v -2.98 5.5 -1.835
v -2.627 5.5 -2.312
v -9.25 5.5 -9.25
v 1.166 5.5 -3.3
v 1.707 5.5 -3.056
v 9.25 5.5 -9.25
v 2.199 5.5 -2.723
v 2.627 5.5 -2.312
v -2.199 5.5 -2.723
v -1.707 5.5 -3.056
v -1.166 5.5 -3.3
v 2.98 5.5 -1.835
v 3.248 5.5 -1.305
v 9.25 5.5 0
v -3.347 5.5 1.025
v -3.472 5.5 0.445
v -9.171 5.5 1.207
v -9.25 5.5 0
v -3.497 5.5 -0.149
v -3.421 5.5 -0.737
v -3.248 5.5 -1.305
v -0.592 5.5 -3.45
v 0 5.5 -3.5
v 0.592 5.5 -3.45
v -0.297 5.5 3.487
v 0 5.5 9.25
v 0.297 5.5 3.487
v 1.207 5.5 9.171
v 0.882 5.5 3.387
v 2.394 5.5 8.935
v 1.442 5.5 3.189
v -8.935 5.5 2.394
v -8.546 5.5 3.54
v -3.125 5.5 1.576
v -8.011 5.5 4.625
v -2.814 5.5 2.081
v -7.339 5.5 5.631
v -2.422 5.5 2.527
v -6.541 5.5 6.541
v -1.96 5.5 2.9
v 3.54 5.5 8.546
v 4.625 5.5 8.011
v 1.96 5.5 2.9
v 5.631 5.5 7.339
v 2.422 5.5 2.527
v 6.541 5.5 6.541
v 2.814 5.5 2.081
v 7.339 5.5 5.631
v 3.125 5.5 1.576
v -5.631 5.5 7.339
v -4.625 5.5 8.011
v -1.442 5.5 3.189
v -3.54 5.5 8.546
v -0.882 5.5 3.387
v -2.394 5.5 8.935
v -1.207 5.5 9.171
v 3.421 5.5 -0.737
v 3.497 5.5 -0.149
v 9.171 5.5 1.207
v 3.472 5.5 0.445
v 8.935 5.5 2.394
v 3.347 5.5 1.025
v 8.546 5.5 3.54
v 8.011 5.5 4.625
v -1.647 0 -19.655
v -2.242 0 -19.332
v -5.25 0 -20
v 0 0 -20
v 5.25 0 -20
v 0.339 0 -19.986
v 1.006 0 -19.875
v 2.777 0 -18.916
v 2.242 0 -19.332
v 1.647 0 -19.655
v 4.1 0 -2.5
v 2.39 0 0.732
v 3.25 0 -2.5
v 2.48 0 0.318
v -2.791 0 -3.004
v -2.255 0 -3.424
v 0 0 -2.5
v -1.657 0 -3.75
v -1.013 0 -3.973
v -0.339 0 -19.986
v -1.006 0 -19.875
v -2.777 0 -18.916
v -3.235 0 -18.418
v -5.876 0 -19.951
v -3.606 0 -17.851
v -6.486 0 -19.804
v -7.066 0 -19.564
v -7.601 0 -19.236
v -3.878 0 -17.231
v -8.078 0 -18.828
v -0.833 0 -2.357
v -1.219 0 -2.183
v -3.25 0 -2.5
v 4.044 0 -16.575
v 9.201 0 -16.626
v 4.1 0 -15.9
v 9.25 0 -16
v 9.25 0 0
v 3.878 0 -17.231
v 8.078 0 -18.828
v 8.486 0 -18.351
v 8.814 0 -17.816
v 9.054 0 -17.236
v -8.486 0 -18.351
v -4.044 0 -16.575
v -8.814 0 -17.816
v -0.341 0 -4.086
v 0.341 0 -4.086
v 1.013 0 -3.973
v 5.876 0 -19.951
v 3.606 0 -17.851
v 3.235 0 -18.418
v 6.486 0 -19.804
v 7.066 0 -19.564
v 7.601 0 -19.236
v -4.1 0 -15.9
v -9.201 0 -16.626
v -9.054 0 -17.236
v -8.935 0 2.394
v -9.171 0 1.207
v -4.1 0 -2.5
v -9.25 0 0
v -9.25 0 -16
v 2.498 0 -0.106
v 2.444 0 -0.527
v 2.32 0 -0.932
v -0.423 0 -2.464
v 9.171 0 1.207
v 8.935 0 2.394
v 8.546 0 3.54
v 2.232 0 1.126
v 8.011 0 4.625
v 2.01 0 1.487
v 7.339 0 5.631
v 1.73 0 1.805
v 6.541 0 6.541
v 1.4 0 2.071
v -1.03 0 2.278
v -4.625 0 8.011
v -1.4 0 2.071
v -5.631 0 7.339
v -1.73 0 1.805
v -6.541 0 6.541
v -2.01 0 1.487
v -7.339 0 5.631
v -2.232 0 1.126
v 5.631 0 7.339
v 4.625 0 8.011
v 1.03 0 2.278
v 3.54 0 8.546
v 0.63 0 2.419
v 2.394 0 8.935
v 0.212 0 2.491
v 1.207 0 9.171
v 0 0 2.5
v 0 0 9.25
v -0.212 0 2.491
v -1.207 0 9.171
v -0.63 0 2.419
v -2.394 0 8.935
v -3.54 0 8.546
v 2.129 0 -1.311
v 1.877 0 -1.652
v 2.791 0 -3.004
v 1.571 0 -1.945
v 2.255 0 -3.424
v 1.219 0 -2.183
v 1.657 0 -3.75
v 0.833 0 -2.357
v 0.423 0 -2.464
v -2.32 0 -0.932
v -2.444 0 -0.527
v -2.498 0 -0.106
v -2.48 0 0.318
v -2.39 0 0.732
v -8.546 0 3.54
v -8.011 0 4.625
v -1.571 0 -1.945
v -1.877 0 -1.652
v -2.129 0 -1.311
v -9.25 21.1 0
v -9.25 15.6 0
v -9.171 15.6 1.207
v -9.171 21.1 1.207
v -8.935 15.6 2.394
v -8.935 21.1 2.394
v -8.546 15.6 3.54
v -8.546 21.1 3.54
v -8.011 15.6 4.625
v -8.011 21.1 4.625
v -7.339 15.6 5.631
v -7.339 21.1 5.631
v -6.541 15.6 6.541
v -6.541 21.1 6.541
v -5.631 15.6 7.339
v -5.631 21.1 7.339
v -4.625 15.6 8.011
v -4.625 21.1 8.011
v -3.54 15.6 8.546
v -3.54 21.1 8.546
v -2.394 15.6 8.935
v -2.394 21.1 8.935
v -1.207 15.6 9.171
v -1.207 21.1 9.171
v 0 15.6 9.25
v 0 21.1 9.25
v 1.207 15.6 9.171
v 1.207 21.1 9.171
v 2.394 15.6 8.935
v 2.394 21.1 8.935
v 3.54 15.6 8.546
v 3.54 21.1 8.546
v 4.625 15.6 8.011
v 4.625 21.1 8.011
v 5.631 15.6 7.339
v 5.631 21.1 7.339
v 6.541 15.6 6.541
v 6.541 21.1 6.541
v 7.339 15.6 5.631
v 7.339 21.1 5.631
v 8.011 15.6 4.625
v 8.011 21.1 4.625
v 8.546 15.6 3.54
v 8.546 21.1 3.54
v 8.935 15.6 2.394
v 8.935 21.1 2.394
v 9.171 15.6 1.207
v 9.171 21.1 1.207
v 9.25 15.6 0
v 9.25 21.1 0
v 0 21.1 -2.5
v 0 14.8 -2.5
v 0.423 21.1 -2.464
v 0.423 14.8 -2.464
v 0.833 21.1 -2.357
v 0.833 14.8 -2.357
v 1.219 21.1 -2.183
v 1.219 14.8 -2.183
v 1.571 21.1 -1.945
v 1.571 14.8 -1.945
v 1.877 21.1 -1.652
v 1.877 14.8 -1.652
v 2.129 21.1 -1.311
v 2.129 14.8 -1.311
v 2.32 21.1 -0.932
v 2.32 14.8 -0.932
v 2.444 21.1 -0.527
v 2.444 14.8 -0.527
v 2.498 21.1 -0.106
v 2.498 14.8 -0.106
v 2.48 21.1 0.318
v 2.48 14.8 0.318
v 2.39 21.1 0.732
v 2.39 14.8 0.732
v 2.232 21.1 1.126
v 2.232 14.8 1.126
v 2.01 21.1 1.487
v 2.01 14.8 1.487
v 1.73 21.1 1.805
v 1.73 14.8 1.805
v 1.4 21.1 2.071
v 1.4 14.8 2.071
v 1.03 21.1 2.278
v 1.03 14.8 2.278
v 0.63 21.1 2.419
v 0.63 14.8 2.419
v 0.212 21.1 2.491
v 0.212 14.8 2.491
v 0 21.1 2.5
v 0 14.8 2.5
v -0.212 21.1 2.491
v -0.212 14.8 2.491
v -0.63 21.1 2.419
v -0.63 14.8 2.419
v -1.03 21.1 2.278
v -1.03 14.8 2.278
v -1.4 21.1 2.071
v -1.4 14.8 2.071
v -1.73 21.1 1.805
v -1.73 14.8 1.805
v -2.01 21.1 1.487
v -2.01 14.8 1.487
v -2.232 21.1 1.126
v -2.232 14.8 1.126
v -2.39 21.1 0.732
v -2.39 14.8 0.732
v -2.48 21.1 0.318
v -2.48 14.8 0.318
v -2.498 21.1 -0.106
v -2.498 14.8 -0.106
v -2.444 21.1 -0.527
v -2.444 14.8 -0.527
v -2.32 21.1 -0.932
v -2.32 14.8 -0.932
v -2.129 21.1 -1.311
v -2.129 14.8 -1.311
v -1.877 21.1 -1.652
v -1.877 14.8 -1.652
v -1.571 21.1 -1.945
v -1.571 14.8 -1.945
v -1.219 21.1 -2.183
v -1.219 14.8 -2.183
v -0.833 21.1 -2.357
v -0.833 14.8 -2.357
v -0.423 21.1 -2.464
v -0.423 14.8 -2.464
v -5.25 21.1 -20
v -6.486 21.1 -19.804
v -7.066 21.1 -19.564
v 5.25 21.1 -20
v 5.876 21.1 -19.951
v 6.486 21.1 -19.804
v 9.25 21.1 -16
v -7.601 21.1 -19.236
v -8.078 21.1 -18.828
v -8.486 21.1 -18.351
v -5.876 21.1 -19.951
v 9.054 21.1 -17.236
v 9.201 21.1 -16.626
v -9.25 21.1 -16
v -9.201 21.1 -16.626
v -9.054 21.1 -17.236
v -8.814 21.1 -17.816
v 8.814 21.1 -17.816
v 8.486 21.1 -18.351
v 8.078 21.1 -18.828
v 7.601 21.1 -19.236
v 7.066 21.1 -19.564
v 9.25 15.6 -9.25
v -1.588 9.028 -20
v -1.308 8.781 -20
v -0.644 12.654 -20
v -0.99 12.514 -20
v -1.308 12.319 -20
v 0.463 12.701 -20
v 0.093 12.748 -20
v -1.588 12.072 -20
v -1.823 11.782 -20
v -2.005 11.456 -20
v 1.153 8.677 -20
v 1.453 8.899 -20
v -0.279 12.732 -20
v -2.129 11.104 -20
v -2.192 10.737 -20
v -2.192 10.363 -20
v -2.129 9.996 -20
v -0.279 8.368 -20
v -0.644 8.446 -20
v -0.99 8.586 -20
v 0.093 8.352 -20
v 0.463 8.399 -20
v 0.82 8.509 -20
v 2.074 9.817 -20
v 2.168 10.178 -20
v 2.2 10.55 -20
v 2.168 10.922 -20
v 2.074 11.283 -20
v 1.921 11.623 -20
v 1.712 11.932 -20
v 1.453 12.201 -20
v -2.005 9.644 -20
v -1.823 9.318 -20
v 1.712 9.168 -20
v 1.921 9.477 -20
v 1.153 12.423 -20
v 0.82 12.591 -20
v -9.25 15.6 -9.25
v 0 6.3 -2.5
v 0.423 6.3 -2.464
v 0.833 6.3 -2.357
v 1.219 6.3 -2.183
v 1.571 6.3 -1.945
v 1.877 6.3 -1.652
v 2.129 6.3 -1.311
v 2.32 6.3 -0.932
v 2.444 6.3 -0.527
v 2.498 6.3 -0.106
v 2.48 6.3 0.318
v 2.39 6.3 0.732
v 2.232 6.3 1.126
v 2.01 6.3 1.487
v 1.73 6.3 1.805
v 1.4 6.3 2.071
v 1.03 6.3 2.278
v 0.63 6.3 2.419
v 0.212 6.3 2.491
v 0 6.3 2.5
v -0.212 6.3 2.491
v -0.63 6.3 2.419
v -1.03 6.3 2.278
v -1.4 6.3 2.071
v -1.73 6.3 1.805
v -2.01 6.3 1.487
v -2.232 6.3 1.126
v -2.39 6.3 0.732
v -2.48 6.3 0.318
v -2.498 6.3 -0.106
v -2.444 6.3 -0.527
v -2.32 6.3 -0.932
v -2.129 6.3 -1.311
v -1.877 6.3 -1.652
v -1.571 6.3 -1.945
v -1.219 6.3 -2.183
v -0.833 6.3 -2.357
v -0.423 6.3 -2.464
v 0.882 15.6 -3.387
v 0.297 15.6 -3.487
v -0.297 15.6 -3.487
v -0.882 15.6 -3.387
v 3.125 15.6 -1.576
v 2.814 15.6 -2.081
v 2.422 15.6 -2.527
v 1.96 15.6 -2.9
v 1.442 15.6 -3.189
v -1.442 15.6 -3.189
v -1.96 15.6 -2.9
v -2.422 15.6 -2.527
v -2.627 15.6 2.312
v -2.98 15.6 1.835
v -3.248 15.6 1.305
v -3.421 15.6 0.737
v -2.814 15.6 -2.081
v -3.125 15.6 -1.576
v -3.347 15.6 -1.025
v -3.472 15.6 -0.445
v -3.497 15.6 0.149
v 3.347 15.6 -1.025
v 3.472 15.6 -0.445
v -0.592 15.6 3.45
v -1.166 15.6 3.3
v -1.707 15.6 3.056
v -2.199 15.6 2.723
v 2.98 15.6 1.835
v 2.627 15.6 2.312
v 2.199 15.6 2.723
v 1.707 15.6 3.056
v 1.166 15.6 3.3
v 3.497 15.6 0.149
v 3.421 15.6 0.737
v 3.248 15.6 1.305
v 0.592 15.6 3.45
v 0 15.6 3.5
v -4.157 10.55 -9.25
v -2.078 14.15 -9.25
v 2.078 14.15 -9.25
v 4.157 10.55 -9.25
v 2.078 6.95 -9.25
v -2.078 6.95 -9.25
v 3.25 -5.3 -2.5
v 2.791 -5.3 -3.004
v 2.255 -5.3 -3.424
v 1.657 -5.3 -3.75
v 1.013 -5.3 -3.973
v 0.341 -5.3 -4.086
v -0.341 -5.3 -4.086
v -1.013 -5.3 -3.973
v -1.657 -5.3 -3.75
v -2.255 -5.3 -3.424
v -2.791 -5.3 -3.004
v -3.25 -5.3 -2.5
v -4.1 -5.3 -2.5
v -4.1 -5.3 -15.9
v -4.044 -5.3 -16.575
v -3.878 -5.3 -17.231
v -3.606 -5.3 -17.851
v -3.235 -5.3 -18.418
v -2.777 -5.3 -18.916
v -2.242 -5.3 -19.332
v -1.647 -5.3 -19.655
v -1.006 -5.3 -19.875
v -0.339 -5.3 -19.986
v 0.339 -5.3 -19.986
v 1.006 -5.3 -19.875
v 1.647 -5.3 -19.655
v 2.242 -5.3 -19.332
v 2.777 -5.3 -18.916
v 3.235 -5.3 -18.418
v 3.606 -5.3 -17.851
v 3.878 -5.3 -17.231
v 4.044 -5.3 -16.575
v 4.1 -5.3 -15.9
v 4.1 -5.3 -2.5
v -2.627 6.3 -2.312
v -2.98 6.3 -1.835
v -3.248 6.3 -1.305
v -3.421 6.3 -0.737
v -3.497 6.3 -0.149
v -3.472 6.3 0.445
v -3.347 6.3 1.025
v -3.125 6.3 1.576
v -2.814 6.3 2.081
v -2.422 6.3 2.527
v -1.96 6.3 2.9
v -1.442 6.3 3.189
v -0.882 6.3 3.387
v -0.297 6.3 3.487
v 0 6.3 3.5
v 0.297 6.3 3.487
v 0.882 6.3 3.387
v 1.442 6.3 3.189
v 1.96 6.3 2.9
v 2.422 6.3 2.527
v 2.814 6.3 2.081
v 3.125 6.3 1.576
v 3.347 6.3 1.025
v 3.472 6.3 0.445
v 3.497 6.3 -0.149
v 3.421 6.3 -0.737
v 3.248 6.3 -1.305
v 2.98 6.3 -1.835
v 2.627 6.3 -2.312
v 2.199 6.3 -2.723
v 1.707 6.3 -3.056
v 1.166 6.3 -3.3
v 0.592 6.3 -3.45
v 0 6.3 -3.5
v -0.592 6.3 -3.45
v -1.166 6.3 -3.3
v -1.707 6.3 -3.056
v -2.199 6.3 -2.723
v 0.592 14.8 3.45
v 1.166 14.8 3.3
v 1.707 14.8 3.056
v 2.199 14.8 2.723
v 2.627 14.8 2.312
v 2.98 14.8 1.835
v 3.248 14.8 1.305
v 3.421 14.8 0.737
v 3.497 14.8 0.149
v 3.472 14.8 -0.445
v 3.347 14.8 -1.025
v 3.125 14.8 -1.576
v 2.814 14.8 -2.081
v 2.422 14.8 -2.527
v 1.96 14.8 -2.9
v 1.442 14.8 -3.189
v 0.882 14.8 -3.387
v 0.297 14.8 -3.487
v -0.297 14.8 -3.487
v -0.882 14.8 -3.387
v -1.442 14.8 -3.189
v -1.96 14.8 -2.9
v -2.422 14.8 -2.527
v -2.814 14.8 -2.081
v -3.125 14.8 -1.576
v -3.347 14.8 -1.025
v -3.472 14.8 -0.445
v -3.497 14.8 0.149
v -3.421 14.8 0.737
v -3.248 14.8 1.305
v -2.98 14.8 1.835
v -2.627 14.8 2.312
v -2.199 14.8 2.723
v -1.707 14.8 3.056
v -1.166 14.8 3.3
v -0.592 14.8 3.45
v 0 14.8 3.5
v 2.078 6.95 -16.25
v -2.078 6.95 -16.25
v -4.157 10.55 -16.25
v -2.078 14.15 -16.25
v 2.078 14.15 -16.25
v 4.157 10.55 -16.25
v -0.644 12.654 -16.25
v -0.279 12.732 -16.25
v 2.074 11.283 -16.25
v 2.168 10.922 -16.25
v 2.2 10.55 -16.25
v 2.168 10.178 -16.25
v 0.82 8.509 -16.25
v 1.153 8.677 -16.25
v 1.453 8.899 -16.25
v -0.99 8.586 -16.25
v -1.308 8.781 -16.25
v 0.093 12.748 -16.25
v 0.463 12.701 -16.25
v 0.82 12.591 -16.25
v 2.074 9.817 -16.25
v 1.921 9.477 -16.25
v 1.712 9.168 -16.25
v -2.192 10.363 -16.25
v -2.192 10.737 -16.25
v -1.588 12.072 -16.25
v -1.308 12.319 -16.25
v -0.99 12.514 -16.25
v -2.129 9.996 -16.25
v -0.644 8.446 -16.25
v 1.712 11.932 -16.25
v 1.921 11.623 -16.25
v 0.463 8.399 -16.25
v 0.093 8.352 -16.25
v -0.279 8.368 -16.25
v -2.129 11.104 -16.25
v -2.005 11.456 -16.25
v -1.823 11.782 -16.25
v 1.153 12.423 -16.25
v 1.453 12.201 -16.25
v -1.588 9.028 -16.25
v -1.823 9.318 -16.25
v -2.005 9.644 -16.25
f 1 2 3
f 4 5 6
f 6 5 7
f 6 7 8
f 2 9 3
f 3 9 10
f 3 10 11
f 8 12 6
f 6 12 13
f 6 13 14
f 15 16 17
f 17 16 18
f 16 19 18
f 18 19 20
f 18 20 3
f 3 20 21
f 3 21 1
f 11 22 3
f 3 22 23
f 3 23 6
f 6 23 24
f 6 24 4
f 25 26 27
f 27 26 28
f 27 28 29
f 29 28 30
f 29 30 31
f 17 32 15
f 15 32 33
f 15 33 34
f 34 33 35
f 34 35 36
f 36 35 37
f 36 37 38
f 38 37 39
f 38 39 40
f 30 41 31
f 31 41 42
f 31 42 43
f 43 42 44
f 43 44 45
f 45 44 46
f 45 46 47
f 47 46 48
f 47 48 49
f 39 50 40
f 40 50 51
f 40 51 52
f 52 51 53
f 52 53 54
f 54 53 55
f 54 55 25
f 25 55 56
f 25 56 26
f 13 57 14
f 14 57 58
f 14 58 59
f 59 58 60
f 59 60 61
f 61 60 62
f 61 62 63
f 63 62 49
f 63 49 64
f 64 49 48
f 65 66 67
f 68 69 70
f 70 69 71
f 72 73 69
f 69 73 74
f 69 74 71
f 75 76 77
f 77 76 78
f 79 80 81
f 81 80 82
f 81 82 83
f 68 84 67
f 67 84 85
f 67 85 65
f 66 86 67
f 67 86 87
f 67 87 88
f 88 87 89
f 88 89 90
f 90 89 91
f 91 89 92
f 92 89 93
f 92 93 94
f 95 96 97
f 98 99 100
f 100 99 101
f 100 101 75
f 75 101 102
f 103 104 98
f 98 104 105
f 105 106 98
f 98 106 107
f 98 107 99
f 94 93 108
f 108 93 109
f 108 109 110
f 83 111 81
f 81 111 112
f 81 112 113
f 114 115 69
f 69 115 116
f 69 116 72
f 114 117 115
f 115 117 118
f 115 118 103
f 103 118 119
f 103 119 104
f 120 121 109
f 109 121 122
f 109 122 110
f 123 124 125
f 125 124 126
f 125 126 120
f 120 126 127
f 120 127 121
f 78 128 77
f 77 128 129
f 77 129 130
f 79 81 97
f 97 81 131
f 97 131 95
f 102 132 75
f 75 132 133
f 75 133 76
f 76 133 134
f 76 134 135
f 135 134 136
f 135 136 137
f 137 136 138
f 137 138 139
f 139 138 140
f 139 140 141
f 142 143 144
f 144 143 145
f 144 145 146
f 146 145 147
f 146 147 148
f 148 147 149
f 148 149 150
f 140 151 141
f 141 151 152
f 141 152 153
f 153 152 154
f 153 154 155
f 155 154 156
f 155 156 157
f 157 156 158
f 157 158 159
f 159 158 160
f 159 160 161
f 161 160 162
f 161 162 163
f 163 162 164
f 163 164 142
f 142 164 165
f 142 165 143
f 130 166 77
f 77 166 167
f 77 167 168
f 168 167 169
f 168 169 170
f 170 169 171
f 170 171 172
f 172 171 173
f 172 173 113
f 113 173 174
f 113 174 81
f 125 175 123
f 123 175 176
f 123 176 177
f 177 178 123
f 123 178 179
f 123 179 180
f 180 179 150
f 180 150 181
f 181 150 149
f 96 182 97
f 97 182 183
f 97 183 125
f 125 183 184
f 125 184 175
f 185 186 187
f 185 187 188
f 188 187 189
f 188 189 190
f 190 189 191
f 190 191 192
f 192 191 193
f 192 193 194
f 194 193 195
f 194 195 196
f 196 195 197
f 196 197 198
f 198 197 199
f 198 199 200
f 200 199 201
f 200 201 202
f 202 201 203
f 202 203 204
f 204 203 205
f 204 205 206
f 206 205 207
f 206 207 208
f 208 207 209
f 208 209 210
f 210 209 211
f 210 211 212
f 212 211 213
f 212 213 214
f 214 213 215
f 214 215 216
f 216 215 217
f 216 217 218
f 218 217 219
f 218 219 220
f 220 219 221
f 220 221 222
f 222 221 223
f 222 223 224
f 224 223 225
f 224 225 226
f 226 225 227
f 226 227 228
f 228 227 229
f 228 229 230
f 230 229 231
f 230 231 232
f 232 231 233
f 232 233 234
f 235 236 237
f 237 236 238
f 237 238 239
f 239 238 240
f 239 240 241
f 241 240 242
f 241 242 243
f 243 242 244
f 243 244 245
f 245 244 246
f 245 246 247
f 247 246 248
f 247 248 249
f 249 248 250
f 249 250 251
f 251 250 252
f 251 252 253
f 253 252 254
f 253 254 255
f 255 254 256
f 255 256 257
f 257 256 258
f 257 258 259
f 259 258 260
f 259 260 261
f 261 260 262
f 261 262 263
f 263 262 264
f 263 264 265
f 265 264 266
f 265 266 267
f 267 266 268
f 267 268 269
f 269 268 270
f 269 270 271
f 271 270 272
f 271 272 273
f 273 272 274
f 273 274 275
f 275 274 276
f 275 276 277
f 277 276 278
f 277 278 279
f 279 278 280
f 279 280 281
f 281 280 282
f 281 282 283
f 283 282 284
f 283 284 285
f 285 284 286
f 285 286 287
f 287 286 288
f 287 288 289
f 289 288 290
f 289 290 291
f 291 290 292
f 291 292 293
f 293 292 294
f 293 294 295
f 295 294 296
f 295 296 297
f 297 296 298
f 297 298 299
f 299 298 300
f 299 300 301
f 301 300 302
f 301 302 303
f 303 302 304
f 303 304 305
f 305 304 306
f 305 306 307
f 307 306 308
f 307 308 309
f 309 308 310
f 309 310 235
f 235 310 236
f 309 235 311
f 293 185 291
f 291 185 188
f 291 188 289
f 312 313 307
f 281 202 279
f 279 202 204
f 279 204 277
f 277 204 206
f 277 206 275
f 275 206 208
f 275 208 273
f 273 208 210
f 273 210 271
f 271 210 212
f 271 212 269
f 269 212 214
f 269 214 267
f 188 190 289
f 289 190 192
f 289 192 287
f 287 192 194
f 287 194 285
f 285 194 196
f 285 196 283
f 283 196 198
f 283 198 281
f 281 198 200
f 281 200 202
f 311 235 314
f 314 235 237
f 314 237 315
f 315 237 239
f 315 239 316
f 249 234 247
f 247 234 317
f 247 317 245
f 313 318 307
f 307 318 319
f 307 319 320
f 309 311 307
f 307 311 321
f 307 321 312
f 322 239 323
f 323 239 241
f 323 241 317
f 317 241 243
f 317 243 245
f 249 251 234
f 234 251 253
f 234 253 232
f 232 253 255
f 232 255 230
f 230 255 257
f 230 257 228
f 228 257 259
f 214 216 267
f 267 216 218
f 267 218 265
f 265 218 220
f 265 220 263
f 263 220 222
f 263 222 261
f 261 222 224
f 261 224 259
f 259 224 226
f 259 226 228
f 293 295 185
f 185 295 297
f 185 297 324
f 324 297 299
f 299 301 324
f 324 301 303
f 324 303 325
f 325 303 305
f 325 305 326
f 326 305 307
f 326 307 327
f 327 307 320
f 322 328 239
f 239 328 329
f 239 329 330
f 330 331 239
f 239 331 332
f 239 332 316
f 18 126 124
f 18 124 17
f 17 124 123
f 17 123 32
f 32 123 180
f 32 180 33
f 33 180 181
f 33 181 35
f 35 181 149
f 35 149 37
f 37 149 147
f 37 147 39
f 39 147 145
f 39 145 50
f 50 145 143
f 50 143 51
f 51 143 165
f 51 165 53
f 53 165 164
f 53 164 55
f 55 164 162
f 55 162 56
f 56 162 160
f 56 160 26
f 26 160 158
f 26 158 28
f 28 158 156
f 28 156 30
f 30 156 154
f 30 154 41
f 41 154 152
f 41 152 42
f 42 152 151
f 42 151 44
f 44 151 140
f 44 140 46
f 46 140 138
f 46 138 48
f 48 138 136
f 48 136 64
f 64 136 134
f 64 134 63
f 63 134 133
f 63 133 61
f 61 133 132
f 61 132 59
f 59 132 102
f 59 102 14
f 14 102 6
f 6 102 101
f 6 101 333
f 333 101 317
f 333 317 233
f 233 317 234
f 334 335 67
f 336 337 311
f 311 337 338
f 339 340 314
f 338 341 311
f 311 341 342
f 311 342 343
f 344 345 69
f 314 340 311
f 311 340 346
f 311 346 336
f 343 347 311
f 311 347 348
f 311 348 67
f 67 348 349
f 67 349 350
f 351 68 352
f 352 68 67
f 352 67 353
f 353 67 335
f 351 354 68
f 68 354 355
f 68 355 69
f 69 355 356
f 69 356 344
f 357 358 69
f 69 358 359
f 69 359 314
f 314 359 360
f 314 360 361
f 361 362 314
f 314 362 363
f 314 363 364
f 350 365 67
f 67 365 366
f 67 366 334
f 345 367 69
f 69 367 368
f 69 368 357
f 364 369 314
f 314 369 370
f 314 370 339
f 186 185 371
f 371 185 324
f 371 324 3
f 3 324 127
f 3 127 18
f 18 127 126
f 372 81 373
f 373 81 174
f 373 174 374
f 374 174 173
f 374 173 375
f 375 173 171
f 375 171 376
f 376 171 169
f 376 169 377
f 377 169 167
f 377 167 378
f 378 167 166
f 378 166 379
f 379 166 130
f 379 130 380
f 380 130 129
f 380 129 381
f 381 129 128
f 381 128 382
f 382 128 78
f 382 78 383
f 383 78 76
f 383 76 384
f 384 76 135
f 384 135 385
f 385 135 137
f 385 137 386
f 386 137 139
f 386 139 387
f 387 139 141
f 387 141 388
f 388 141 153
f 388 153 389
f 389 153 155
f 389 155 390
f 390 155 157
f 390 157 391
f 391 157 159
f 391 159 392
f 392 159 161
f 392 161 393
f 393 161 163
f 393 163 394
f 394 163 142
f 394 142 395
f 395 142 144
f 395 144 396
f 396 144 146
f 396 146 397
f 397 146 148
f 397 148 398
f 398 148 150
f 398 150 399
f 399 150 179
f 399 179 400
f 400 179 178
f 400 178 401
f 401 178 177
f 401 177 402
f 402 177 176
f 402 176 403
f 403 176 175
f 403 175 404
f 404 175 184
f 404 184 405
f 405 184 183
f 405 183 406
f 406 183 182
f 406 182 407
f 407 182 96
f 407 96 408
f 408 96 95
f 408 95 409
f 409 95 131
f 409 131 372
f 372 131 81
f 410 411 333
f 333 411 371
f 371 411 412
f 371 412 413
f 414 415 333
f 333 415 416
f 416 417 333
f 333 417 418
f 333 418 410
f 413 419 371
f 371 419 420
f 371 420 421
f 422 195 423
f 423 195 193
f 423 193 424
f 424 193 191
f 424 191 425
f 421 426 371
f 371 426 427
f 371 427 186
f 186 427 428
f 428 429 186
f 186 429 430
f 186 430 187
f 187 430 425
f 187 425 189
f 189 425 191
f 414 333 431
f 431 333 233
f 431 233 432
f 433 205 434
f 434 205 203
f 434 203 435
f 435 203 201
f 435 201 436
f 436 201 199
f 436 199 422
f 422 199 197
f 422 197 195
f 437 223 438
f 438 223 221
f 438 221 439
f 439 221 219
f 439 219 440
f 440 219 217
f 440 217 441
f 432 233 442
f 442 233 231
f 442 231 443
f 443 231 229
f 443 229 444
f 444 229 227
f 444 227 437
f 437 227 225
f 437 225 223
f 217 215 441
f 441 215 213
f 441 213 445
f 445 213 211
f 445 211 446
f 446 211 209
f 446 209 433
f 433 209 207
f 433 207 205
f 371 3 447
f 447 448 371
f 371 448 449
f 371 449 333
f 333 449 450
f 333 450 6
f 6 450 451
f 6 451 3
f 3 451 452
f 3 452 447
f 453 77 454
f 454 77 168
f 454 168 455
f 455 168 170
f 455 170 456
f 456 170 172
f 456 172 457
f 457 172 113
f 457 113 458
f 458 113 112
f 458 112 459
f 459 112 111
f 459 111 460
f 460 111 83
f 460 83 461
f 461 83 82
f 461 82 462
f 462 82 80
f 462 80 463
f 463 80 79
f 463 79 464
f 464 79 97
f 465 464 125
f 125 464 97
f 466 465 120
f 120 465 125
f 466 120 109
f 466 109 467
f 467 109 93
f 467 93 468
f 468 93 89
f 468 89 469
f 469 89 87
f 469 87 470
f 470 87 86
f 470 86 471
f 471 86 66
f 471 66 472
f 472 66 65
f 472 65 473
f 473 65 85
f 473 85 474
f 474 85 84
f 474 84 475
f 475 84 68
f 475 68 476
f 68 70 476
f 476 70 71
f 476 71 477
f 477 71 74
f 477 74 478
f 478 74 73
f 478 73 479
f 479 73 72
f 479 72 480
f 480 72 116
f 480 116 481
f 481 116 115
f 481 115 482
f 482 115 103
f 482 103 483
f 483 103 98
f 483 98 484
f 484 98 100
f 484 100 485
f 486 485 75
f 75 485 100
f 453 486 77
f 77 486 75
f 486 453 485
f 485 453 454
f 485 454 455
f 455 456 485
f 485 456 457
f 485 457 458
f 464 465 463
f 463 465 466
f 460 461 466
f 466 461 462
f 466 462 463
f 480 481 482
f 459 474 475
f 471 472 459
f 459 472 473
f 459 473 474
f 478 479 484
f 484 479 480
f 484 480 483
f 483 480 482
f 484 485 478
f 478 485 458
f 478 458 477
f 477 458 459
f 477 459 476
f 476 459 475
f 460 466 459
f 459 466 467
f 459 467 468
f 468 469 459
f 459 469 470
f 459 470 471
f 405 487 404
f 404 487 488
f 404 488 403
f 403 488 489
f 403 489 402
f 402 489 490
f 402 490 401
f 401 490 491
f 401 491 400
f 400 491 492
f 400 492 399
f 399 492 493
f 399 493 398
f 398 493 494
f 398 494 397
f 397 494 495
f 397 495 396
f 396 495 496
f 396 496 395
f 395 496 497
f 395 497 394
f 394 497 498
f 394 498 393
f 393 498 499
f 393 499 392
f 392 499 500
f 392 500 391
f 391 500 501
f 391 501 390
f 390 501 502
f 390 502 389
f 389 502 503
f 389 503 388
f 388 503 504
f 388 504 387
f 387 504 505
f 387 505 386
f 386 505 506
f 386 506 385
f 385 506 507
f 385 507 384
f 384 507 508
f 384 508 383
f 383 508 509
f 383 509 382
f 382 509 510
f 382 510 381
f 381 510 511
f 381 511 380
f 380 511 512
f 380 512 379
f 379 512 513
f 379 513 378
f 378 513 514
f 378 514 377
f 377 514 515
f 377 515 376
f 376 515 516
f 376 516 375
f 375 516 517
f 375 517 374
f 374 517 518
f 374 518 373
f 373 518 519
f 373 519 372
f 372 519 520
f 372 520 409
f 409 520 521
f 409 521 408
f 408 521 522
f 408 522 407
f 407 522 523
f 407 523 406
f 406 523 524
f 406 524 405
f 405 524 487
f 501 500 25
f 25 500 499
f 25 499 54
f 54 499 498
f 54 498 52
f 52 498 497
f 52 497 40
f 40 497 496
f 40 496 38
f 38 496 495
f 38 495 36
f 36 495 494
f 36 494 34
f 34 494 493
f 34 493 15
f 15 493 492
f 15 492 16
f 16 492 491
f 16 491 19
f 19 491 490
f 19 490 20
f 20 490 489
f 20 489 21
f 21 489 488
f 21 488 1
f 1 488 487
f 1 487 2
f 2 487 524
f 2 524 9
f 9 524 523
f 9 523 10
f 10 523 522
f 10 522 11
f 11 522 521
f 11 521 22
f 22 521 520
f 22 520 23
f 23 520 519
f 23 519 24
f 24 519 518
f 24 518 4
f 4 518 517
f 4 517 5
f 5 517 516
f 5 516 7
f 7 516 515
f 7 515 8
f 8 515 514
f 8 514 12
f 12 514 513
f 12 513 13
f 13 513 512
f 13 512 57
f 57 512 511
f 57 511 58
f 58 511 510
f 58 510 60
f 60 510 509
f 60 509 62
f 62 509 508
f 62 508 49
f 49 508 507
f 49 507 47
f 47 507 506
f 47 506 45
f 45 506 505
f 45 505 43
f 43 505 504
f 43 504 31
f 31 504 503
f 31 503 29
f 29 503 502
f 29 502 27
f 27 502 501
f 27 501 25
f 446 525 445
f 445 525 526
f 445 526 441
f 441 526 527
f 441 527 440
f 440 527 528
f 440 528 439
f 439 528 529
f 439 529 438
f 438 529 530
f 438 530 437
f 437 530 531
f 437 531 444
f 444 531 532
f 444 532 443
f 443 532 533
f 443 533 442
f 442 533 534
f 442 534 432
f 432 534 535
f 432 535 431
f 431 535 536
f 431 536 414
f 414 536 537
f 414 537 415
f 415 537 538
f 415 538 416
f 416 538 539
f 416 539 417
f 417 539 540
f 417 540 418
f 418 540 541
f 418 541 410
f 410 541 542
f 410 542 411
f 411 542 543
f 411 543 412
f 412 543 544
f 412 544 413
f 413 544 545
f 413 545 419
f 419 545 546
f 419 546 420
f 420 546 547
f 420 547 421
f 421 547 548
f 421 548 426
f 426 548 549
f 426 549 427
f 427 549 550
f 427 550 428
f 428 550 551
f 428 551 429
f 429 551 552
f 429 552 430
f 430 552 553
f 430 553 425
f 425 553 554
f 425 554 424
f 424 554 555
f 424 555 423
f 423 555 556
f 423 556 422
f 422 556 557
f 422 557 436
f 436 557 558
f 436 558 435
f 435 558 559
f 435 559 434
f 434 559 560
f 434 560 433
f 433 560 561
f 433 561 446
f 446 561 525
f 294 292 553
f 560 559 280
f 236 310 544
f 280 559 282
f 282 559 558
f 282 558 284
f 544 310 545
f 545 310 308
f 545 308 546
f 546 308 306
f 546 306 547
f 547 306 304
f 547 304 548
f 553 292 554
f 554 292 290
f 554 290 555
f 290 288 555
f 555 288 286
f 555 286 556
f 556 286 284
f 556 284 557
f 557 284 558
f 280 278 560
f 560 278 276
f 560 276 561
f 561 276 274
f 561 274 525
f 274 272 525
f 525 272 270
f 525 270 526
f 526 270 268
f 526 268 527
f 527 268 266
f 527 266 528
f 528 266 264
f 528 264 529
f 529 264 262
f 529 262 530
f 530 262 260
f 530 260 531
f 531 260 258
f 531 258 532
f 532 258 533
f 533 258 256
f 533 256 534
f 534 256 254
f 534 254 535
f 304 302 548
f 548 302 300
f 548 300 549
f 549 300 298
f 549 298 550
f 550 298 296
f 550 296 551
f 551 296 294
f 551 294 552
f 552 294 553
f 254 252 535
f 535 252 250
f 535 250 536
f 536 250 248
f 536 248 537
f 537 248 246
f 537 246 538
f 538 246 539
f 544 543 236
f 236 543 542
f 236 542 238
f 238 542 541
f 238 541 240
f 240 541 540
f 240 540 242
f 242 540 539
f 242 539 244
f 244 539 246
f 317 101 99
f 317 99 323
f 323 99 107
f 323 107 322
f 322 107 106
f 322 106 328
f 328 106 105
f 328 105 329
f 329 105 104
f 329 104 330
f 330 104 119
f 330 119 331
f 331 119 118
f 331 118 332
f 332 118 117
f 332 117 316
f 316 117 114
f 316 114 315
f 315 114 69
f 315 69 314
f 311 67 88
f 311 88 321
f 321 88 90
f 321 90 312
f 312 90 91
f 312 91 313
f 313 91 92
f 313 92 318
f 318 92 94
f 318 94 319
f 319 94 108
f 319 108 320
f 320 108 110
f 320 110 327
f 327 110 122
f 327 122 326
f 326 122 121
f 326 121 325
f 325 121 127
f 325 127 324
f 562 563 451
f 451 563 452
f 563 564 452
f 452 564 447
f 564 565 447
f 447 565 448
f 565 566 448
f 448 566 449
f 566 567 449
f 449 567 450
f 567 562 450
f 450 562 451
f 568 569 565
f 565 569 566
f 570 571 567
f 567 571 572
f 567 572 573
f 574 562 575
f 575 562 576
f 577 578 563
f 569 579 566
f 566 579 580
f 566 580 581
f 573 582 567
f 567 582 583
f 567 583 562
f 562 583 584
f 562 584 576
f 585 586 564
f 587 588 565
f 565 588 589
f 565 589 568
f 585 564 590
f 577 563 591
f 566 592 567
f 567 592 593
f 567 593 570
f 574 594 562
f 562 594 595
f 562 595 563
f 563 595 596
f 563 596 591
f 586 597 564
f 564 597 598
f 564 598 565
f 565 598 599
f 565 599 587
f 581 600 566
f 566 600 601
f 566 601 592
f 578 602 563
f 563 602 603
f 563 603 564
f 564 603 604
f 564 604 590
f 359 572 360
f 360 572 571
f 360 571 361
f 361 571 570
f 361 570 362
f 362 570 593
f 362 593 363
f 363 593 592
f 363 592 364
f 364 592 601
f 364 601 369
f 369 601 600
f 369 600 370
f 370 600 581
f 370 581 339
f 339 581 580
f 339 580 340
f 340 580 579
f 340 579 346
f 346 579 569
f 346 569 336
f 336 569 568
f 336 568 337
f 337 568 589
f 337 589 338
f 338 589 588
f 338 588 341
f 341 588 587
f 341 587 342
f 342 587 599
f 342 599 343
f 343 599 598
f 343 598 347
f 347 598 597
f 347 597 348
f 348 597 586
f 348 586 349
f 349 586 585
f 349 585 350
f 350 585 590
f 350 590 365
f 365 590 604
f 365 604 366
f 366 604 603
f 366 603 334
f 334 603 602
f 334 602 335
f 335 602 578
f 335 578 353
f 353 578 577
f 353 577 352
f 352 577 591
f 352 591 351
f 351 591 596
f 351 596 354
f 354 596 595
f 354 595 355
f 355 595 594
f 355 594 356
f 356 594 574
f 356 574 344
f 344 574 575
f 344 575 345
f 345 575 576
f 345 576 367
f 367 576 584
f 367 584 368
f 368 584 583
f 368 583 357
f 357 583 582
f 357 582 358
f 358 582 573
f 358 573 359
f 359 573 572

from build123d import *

# Parameters (mm, degrees)
SKETCH1_R           = 2.5
BOSS_EXTRUDE1_DEPTH = 21.1
SKETCH2_W           = 18.5
SKETCH2_H           = 10.1
CUT_EXTRUDE1_DEPTH  = 35.459541494
BOSS_EXTRUDE3_DEPTH = 5.3
SKETCH4_R           = 3.5
SKETCH4_R_2         = 2.5
BOSS_EXTRUDE4_DEPTH = 0.8
FILLET1_R           = 4
CUT_EXTRUDE2_DEPTH  = 7
SKETCH6_R           = 2.2
CUT_EXTRUDE3_DEPTH  = 7


with BuildPart() as part:
    # Sketch1 → Boss-Extrude1 (new body)
    with BuildSketch(Plane(origin=(0, 0, 0), x_dir=(1, 0, 0), z_dir=(0, 1, 0))):
        with BuildLine():
            Line((-9.25, 0), (-9.25, 20))
            Line((-9.25, 20), (9.25, 20))
            Line((9.25, 20), (9.25, 0))
            ThreePointArc((9.25, 0), (0, -9.25), (-9.25, 0))
        make_face()
        with Locations(Location((0, 0, 0), (0, 0, 270))):
            Circle(SKETCH1_R, mode=Mode.SUBTRACT)
    extrude(amount=BOSS_EXTRUDE1_DEPTH)

    # Sketch2 → Cut-Extrude1 (cut, through all)
    with BuildSketch(Plane(origin=(9.25, 0, 0), x_dir=(0, 0, -1), z_dir=(1, 0, 0))):
        with Locations((0, 10.55)):
            Rectangle(SKETCH2_W, SKETCH2_H)
    extrude(amount=-CUT_EXTRUDE1_DEPTH, mode=Mode.SUBTRACT)

    # Sketch3 → Boss-Extrude3 (add)
    with BuildSketch(Plane.XZ):
        with BuildLine():
            Line((4.1, -2.5), (4.1, -15.9))
            ThreePointArc((4.1, -15.9), (0, -20), (-4.1, -15.9))
            Line((-4.1, -15.9), (-4.1, -2.5))
            Line((-4.1, -2.5), (-3.249615362, -2.5))
            ThreePointArc((-3.249615362, -2.5), (0, -4.1), (3.249615362, -2.5))
            Line((3.249615362, -2.5), (4.1, -2.5))
        make_face()
    extrude(amount=BOSS_EXTRUDE3_DEPTH)

    # Sketch4 → Boss-Extrude4 (add)
    with BuildSketch(Plane(origin=(0, 5.5, 0), x_dir=(1, 0, 0), z_dir=(0, 1, 0))):
        with Locations(Location((0, 0, 0), (0, 0, 90))):
            Circle(SKETCH4_R)
        with Locations(Location((0, 0, 0), (0, 0, 270))):
            Circle(SKETCH4_R_2, mode=Mode.SUBTRACT)
    boss_extrude4 = extrude(amount=BOSS_EXTRUDE4_DEPTH)

    # Mirror1: Boss-Extrude4 across plane
    add(boss_extrude4.mirror(Plane.ZX.offset(10.55)))

    # Fillet1
    fillet1_edges = [part.edges().sort_by_distance(p)[0] for p in [
        (-9.25, 10.55, -20),
        (9.25, 10.55, -20),
    ]]
    fillet(fillet1_edges, radius=FILLET1_R)

    # Sketch5 → Cut-Extrude2 (cut)
    with BuildSketch(Plane.XY.offset(-9.25)):
        Polygon((2.078460969, 6.95), (4.156921938, 10.55), (2.078460969, 14.15), (-2.078460969, 14.15), (-4.156921938, 10.55), (-2.078460969, 6.95), align=None)
    extrude(amount=-CUT_EXTRUDE2_DEPTH, mode=Mode.SUBTRACT)

    # Sketch6 → Cut-Extrude3 (cut)
    with BuildSketch(Plane.XY.offset(-16.25)):
        with Locations((0, 10.55)):
            Circle(SKETCH6_R)
    extrude(amount=-CUT_EXTRUDE3_DEPTH, mode=Mode.SUBTRACT)


solid = part.part
